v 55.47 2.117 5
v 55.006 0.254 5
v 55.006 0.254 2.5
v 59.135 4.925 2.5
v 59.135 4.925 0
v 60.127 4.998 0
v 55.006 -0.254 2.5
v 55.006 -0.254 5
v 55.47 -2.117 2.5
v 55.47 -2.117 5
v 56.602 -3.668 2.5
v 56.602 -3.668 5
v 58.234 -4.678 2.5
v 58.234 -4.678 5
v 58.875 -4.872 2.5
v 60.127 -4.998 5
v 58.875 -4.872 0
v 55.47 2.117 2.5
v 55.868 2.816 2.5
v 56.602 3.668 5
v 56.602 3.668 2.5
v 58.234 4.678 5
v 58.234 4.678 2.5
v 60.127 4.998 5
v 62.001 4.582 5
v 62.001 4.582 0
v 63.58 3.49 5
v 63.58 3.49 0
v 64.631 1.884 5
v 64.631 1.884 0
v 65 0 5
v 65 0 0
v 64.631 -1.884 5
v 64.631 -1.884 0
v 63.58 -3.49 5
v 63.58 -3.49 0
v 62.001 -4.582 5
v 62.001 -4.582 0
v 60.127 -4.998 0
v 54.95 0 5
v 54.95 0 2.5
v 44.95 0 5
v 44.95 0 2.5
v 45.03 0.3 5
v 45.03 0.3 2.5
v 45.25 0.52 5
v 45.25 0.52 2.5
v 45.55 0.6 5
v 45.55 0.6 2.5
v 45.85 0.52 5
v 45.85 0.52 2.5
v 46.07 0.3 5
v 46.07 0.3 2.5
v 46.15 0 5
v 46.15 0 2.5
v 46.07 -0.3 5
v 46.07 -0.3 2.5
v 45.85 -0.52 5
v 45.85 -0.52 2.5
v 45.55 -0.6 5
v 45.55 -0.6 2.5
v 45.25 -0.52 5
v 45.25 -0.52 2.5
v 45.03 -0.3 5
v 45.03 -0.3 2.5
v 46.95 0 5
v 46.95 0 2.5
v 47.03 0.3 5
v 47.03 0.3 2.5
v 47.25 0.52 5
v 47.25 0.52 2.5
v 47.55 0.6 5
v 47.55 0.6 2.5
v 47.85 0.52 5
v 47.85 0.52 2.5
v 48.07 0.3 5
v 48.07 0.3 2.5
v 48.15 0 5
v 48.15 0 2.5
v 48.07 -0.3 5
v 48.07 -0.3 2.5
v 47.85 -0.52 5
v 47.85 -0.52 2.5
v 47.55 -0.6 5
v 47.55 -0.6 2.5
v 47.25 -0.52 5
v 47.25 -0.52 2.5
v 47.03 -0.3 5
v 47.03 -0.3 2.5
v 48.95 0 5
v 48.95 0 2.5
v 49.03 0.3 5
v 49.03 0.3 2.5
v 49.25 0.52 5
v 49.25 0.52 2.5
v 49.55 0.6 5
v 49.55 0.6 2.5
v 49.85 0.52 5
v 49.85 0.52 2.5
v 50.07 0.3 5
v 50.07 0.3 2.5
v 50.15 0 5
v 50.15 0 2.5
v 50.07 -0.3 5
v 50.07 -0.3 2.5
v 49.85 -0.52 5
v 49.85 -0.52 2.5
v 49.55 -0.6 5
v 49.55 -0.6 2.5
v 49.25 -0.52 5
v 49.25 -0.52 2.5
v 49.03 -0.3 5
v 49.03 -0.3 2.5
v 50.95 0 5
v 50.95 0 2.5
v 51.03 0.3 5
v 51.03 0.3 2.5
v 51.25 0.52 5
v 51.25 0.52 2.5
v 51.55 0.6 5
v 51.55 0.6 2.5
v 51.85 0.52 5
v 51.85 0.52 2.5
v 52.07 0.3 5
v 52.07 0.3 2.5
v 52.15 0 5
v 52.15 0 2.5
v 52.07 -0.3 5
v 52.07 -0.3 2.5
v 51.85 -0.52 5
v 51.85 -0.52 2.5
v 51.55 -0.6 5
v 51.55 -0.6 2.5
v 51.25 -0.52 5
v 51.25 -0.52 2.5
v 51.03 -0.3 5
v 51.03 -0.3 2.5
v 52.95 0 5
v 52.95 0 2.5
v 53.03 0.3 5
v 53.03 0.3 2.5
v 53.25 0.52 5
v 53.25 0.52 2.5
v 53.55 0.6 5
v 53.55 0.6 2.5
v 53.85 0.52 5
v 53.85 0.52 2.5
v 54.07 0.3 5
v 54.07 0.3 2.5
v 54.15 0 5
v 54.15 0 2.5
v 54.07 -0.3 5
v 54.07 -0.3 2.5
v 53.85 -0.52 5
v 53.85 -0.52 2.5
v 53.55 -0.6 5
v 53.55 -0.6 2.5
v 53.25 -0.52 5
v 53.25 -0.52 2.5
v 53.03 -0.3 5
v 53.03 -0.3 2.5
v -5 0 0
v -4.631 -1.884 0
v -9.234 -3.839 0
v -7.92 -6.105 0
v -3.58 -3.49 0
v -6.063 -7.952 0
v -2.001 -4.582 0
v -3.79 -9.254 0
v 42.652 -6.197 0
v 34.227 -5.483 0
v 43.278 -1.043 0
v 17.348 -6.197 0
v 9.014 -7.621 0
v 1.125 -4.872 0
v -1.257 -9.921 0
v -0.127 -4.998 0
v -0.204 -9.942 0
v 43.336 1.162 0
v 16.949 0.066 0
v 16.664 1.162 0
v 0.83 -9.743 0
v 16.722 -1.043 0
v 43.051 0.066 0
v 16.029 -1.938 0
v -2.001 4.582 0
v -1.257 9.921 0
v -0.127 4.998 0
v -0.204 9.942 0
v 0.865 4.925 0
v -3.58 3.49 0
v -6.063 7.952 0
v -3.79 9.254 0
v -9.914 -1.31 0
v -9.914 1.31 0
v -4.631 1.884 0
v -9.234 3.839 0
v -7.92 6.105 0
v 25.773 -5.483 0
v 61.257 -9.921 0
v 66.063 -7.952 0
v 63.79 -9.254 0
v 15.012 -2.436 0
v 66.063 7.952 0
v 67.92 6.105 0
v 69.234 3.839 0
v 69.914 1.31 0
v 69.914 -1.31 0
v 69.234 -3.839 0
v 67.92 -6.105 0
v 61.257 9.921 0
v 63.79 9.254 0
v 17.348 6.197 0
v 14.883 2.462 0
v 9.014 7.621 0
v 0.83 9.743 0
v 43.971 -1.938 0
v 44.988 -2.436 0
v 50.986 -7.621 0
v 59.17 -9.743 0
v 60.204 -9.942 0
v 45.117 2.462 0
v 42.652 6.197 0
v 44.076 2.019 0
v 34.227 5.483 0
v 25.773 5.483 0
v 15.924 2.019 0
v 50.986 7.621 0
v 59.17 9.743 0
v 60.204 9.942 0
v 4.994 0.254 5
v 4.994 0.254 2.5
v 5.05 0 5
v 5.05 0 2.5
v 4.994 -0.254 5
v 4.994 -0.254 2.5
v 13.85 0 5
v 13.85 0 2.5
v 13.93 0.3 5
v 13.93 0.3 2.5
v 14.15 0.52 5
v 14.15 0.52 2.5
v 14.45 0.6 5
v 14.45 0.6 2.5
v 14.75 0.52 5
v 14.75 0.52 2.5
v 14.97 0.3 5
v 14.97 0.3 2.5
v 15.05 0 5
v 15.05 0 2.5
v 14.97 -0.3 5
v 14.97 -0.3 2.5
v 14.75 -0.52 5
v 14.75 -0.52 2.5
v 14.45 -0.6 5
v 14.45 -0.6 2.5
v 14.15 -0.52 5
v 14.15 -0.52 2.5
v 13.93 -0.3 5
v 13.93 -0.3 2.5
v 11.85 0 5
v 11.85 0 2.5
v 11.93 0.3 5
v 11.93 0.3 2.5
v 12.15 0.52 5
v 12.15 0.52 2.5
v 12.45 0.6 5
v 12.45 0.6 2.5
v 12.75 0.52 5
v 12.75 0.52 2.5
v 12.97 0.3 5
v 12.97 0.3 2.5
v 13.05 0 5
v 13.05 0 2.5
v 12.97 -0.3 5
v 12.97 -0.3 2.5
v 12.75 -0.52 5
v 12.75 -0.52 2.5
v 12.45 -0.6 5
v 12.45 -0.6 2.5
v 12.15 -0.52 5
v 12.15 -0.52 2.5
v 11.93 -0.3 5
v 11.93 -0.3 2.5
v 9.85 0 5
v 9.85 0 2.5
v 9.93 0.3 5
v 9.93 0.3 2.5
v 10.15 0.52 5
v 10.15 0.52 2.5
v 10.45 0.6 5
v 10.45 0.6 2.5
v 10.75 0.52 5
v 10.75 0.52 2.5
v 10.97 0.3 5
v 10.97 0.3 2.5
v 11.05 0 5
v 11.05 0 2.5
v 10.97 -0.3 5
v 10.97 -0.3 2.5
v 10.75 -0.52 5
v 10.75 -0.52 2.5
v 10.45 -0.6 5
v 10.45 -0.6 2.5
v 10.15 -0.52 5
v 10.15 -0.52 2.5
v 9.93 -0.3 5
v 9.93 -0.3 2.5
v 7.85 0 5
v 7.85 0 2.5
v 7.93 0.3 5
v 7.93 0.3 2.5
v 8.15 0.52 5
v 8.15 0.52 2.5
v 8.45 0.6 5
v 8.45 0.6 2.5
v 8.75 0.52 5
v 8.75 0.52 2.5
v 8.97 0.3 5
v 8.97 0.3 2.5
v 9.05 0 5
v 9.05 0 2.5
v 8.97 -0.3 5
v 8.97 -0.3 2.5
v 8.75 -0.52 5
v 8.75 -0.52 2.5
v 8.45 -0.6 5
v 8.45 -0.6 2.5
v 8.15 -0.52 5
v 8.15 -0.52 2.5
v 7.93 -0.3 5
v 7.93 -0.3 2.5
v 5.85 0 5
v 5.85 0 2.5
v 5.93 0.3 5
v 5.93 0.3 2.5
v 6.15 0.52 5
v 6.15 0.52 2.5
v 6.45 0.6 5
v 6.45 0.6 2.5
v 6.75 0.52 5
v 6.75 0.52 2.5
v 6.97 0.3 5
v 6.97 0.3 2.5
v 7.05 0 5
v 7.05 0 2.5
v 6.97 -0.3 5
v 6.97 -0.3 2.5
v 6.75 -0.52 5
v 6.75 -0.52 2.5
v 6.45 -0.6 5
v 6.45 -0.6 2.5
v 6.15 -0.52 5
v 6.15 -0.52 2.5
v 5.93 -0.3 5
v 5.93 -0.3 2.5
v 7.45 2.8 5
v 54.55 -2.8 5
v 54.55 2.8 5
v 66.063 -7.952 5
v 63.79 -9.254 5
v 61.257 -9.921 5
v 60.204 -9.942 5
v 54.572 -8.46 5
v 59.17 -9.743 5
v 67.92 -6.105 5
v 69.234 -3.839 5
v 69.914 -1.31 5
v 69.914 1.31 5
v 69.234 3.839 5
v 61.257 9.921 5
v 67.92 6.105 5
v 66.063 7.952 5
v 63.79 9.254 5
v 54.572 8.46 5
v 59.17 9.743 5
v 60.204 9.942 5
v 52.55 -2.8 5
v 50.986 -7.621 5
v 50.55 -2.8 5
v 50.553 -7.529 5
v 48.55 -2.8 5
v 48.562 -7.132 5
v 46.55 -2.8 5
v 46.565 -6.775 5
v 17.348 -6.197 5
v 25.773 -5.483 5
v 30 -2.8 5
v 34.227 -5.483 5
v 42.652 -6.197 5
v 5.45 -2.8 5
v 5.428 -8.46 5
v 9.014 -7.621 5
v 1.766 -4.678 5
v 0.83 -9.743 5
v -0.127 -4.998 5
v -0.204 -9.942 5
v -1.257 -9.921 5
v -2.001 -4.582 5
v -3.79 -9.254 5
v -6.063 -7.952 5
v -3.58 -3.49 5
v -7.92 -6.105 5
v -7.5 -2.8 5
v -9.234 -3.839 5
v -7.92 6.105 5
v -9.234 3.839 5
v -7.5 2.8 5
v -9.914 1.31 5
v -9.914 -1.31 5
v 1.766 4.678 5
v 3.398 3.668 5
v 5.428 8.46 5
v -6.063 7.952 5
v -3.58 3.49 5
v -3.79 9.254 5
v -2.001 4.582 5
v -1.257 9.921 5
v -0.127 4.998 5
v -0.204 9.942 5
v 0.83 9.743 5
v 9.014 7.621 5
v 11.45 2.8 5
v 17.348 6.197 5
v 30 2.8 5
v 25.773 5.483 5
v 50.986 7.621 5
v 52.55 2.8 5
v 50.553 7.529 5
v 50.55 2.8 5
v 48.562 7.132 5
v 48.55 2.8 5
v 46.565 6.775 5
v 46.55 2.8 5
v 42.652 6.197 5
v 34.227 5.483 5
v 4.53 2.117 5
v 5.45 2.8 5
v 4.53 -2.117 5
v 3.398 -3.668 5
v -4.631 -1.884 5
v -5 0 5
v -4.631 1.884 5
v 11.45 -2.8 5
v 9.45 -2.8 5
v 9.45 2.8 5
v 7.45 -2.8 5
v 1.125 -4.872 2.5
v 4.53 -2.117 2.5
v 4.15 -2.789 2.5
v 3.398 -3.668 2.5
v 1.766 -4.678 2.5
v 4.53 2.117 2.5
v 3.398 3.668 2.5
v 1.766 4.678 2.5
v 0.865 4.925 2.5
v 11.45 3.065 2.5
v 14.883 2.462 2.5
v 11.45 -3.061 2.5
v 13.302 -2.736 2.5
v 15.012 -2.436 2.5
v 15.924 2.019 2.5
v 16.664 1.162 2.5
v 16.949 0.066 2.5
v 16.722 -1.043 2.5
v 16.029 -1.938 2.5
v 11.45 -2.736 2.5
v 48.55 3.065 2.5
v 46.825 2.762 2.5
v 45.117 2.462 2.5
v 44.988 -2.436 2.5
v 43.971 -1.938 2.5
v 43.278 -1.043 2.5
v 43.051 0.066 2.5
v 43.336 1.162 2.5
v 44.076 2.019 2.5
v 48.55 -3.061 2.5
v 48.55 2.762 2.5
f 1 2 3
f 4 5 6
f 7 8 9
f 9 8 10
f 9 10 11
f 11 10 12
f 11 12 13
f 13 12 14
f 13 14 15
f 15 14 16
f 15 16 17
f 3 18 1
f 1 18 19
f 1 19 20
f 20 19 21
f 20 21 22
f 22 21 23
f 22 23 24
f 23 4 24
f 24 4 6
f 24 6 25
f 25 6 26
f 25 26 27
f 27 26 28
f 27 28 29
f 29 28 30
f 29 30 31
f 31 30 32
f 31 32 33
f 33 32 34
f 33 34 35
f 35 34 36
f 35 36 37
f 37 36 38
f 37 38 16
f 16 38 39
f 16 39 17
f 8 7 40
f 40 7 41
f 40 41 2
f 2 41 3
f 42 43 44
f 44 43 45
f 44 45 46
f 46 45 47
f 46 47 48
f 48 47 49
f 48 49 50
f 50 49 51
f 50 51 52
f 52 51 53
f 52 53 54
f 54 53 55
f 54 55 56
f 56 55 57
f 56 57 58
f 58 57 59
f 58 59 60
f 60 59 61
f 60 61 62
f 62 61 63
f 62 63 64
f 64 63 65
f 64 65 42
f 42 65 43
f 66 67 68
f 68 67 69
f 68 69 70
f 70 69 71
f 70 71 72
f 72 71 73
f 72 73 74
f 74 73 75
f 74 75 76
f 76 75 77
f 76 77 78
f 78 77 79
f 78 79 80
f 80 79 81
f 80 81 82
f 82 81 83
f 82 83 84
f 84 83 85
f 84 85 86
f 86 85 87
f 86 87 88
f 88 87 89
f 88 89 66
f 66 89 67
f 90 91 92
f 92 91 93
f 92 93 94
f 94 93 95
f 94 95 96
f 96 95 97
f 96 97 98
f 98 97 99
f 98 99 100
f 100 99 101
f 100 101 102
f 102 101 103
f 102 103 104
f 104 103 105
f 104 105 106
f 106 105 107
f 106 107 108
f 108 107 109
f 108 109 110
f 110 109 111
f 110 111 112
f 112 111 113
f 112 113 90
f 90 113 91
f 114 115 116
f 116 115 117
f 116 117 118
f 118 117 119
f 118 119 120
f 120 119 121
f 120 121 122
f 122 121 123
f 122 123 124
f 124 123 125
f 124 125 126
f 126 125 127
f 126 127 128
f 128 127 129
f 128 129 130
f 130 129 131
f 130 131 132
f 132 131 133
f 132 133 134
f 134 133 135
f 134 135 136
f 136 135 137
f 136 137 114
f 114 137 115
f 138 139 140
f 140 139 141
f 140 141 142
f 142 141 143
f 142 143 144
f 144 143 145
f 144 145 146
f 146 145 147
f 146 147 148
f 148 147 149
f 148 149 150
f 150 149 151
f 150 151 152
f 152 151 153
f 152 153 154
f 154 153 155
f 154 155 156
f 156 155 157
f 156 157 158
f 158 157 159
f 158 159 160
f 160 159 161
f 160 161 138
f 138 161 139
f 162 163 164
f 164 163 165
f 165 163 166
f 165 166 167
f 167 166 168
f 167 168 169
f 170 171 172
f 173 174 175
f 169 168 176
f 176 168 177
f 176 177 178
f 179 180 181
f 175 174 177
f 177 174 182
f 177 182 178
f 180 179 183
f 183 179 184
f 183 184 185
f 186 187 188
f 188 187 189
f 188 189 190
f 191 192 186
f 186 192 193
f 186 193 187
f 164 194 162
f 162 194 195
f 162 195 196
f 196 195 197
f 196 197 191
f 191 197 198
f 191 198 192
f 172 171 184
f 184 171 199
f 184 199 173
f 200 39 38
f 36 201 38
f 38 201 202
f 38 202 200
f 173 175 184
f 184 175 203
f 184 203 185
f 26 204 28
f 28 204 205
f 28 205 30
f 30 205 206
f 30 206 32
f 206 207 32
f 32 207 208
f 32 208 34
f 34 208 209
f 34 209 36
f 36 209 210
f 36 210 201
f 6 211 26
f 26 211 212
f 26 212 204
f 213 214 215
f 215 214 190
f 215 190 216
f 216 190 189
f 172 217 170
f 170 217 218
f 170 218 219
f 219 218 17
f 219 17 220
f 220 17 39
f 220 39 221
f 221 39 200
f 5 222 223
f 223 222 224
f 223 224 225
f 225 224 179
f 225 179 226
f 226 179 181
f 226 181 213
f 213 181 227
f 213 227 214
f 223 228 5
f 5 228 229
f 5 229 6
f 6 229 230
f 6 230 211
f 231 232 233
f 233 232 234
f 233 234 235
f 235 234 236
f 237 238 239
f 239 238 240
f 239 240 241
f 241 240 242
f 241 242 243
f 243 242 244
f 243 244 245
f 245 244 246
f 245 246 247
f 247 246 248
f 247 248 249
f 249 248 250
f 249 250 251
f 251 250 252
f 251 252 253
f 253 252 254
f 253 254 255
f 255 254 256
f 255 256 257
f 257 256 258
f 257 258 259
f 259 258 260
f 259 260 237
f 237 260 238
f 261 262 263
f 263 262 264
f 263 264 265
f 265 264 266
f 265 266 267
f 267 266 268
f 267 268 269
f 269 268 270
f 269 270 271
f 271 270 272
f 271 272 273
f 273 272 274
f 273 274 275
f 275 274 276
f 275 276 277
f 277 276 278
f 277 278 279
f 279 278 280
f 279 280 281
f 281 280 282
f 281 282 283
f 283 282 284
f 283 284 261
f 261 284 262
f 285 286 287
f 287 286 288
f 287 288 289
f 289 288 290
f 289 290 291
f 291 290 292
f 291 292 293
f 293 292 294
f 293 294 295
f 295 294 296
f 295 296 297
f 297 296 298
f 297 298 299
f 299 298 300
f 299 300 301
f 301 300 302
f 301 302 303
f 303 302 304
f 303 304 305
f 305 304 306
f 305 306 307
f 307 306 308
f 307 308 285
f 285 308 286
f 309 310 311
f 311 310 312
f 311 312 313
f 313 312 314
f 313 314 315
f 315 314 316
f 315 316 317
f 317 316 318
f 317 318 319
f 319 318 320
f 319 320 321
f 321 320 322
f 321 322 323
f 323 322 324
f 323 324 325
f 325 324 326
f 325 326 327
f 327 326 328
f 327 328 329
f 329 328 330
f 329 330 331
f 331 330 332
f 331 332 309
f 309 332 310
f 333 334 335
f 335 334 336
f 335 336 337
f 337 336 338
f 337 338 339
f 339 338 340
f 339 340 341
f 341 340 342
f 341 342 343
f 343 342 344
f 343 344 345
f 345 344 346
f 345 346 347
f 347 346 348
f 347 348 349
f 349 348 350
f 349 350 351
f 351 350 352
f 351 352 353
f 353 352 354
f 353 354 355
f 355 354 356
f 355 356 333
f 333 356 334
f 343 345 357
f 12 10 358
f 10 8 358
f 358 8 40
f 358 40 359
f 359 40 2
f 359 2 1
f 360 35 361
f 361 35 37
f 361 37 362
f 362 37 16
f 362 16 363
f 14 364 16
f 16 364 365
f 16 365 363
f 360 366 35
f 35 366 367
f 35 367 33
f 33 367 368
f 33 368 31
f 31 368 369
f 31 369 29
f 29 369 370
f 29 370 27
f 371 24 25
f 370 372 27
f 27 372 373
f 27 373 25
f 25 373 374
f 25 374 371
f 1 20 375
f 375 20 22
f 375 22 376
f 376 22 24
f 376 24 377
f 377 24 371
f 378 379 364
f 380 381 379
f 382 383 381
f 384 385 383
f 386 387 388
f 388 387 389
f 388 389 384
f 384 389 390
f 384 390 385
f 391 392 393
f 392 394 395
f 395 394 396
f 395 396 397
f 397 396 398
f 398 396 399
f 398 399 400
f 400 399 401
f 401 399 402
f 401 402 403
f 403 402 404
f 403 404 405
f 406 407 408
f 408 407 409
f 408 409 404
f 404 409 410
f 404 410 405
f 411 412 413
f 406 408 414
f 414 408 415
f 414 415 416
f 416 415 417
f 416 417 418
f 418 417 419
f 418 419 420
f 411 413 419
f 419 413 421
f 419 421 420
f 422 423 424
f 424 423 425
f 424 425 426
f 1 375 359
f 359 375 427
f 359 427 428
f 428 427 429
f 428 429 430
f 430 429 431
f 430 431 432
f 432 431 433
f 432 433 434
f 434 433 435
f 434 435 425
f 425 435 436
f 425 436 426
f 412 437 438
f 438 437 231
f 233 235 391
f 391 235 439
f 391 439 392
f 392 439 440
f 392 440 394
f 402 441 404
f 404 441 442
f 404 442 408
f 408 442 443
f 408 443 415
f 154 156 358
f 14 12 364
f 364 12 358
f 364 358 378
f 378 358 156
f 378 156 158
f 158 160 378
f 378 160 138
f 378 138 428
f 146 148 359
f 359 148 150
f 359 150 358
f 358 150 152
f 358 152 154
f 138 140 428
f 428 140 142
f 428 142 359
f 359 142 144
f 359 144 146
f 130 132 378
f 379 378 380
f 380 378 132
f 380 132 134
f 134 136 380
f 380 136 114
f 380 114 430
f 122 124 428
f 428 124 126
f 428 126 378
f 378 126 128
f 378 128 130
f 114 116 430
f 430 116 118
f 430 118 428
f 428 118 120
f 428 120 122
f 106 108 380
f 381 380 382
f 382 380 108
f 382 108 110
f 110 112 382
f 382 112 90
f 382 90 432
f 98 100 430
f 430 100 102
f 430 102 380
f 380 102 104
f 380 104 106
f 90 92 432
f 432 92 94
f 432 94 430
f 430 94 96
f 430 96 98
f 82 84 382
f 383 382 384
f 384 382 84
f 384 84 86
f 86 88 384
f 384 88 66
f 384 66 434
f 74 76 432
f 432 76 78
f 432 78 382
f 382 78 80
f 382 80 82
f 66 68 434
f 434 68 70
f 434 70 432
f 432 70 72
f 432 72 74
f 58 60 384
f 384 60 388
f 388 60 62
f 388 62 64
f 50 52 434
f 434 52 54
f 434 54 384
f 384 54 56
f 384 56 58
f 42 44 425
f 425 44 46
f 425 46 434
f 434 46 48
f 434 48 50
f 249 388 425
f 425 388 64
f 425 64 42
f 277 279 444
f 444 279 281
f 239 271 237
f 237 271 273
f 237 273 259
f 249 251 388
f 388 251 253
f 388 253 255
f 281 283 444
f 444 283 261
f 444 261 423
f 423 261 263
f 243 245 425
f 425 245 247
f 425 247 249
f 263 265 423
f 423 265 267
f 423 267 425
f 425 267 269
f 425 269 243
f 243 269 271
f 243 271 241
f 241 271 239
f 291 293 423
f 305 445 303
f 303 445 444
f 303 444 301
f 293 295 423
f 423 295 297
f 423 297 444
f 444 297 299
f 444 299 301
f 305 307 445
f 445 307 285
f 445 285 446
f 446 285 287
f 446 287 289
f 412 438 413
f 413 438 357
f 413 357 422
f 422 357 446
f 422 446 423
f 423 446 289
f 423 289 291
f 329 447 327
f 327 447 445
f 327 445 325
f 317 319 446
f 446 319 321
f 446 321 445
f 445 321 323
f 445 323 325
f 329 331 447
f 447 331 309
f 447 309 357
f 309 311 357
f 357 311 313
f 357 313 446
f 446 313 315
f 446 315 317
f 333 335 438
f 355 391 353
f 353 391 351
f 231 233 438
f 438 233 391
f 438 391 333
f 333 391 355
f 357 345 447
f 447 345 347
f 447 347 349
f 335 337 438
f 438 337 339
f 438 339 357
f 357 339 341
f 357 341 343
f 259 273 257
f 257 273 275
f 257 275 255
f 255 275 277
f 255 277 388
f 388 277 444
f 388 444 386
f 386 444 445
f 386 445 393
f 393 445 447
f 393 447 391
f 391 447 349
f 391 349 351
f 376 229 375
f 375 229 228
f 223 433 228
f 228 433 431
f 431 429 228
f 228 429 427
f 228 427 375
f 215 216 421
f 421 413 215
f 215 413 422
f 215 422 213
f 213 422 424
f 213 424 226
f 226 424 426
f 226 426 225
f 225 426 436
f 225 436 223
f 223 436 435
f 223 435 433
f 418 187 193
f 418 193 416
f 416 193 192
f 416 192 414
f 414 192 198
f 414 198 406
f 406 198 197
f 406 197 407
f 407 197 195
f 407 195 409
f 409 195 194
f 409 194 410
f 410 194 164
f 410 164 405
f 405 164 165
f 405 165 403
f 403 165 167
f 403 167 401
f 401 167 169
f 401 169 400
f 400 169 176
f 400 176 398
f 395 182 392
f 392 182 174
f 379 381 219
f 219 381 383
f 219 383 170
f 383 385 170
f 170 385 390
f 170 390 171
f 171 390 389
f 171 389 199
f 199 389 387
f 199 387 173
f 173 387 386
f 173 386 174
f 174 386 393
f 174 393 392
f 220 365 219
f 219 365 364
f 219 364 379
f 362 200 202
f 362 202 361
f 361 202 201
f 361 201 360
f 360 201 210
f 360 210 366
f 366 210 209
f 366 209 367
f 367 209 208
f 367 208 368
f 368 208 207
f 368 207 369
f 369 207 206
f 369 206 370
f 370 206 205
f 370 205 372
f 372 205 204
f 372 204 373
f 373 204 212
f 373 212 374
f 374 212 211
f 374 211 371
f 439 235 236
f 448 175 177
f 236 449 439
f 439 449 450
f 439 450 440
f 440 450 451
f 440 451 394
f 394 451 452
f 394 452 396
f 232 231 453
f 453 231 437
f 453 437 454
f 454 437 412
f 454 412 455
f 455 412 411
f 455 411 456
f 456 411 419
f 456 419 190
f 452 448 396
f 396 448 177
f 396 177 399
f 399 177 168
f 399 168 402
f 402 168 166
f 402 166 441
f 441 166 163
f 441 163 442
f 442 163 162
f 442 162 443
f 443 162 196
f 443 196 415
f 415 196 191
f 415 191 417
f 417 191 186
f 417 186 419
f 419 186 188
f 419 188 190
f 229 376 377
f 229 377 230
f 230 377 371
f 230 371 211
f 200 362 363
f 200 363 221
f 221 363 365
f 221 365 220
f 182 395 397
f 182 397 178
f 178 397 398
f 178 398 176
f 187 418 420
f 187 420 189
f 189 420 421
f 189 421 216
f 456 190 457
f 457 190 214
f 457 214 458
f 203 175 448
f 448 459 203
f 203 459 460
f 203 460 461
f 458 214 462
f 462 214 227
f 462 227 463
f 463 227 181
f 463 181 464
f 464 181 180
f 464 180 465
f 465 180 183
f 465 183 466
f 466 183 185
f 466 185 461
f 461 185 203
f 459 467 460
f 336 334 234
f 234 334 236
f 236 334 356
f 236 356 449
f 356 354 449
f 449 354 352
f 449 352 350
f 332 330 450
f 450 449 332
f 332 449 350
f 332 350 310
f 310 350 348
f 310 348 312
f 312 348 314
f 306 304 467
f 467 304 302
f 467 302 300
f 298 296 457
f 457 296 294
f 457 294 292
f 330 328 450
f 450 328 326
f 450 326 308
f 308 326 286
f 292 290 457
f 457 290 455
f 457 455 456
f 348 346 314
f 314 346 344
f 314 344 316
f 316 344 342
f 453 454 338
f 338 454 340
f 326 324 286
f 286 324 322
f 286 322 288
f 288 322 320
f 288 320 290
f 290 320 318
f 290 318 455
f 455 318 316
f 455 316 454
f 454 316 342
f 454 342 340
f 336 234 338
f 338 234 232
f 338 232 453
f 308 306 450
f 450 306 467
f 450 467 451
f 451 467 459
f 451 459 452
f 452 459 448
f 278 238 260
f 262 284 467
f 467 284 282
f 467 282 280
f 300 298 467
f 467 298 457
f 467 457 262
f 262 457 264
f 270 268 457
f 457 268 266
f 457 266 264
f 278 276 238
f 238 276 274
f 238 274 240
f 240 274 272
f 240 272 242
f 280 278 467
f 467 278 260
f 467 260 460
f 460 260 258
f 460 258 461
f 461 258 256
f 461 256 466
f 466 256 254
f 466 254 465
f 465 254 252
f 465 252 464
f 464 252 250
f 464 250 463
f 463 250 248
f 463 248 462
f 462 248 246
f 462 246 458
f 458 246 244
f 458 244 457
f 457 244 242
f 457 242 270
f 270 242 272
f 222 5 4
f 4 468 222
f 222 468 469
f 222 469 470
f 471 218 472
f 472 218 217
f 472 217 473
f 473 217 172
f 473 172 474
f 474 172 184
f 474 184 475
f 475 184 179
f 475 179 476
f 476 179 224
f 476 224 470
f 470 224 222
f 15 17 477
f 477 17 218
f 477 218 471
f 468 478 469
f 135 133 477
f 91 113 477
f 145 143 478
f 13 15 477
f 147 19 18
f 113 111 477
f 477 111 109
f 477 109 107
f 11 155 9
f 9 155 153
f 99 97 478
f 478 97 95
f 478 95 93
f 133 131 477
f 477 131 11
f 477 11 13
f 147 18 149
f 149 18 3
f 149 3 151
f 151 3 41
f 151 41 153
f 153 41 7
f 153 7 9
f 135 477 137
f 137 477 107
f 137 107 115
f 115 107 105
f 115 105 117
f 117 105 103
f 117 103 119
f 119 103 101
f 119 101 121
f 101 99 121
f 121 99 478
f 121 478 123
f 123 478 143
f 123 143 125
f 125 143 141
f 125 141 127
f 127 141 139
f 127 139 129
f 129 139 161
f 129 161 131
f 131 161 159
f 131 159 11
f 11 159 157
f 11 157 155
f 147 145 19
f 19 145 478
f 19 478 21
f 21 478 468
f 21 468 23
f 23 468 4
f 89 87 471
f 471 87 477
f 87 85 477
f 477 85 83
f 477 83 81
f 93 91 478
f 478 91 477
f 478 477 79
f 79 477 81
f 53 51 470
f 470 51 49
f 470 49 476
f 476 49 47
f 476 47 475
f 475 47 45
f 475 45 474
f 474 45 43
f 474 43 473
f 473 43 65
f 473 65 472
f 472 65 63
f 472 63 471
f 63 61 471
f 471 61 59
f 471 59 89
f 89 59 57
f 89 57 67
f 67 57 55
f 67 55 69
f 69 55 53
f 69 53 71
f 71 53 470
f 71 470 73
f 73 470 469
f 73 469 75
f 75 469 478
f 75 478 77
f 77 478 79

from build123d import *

# Parameters (mm, degrees)
SKETCH1_R           = 5
BOSS_EXTRUDE1_DEPTH = 5
FILLET1_R           = 5
SKETCH2_R           = 0.6
CUT_EXTRUDE1_DEPTH  = 5
SKETCH3_R           = 0.6
CUT_EXTRUDE2_DEPTH  = 2.5


with BuildPart() as part:
    # Sketch1 → Boss-Extrude1 (new body)
    with BuildSketch(Plane.XY):
        with BuildLine():
            ThreePointArc((0, 10), (-10, 0), (0, -10))
            ThreePointArc((0, -10), (30, -5.393920142), (60, -10))
            ThreePointArc((60, -10), (70, 0), (60, 10))
            ThreePointArc((60, 10), (30, 5.393920142), (0, 10))
        make_face()
        Circle(SKETCH1_R, mode=Mode.SUBTRACT)
        with Locations((60, 0)):
            Circle(SKETCH1_R, mode=Mode.SUBTRACT)
    extrude(amount=BOSS_EXTRUDE1_DEPTH)

    # Fillet1
    fillet1_edges = [part.edges().sort_by_distance(p)[0] for p in [
        (60, 10, 2.5),
        (60, -10, 2.5),
        (0, -10, 2.5),
        (0, 10, 2.5),
    ]]
    fillet(fillet1_edges, radius=FILLET1_R)

    # Sketch2 → Cut-Extrude1 (cut)
    with BuildSketch(Plane(origin=(0, 0, 0), x_dir=(-1, 0, 0), z_dir=(0, 0, -1))):
        with Locations((-4.45, 0)):
            Circle(SKETCH2_R)
        with Locations((-6.45, 0)):
            Circle(SKETCH2_R)
        with Locations((-8.45, 0)):
            Circle(SKETCH2_R)
        with Locations((-10.45, 0)):
            Circle(SKETCH2_R)
        with Locations((-12.45, 0)):
            Circle(SKETCH2_R)
        with Locations((-14.45, 0)):
            Circle(SKETCH2_R)
    cut_extrude1 = extrude(amount=-CUT_EXTRUDE1_DEPTH, mode=Mode.SUBTRACT)

    # Sketch3 → Cut-Extrude2 (cut)
    with BuildSketch(Plane(origin=(0, 0, 0), x_dir=(-1, 0, 0), z_dir=(0, 0, -1))):
        with BuildLine():
            Line((-15.012283737, -2.435946838), (-1.124567474, -4.871893677))
            ThreePointArc((-1.124567474, -4.871893677), (-3.832599709, -3.211102532), (-4.993539326, -0.254096441))
            ThreePointArc((-4.993539326, -0.254096441), (-5.05, 0), (-4.993539326, 0.254096441))
            ThreePointArc((-4.993539326, 0.254096441), (-3.746221254, 3.311468906), (-0.865051903, 4.924600005))
            Line((-0.865051903, 4.924600005), (-14.882525952, 2.462300002))
            ThreePointArc((-14.882525952, 2.462300002), (-16.949123268, 0.066203422), (-15.012283737, -2.435946838))
        make_face()
        with Locations((-12.45, 0)):
            Circle(SKETCH3_R, mode=Mode.SUBTRACT)
        with Locations((-6.45, 0)):
            Circle(SKETCH3_R, mode=Mode.SUBTRACT)
        with Locations((-8.45, 0)):
            Circle(SKETCH3_R, mode=Mode.SUBTRACT)
        with Locations((-10.45, 0)):
            Circle(SKETCH3_R, mode=Mode.SUBTRACT)
        with Locations((-14.45, 0)):
            Circle(SKETCH3_R, mode=Mode.SUBTRACT)
    cut_extrude2 = extrude(amount=-CUT_EXTRUDE2_DEPTH, mode=Mode.SUBTRACT)

    # Mirror2: Cut-Extrude1, Cut-Extrude2 across plane
    add(cut_extrude1.mirror(Plane(origin=(30, 0, 0), x_dir=(0, 0, 1), z_dir=(1, 0, 0))), mode=Mode.SUBTRACT)
    add(cut_extrude2.mirror(Plane(origin=(30, 0, 0), x_dir=(0, 0, 1), z_dir=(1, 0, 0))), mode=Mode.SUBTRACT)


solid = part.part
